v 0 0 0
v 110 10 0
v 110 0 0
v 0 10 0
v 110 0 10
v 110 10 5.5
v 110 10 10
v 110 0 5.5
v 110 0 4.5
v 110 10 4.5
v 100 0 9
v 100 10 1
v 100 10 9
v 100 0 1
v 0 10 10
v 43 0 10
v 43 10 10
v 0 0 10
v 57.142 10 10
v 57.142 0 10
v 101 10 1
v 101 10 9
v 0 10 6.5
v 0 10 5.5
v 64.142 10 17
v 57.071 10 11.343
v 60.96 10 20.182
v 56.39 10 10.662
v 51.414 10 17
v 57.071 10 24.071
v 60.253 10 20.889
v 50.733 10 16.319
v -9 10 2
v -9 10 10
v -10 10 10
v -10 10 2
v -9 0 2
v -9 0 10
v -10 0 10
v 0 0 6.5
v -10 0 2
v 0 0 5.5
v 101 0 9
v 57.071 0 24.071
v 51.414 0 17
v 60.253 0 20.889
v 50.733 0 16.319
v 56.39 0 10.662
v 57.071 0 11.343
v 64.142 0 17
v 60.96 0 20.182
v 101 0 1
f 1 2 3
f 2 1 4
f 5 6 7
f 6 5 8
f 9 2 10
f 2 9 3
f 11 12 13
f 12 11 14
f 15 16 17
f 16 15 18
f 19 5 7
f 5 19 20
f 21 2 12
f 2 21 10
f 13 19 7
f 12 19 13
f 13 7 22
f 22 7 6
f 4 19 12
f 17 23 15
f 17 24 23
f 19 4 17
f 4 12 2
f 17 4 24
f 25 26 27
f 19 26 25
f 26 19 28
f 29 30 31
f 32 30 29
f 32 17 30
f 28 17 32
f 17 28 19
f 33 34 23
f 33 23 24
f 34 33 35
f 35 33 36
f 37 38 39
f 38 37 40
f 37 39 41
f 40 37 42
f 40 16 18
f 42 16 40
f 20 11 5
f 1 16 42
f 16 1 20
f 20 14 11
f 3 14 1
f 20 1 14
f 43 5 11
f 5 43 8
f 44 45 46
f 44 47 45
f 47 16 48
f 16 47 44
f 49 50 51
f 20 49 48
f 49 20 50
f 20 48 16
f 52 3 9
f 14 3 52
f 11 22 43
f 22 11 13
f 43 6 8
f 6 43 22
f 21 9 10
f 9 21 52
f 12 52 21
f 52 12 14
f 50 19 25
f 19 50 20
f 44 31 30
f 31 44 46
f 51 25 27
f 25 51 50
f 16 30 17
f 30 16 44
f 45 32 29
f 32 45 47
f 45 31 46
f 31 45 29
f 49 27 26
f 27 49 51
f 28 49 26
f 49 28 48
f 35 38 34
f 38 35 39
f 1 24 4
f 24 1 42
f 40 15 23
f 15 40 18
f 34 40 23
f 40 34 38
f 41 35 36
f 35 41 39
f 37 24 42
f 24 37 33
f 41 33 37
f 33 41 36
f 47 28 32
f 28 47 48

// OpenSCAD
// file: dove_tail.scad
top = 10;
left = 10;
right = 10;
width = 1;
thickness = 10;
height_offset = 10;

module dove_tail(top, left, right, width, thickness){
    translate([right, 0, 0]){
        hull(){
            translate([0, 0, 0]){
                translate([left + width, 0, 0]){
                    cube(width);
                }
                translate([right * -1 + width, 0, 0]){
                    cube(width);
                }
                translate([width, 0, top]){
                    cube(width);
                }
            }
            translate([0, thickness, 0]){
                translate([left + width, width, 0]){
                    cube(width);
                }
                translate([right * -1 + width, width, 0]){
                    cube(width);
                }
                translate([width, width, top]){
                    cube(width);
                }
            }
        }
    }
}
module dove_tail_negative(top, left, right, width, thickness, height_offset){
    length_percent = 1;
    length = left + right + width + width + width;
    height = top + height_offset;
    difference(){
        translate([0, 0, 0]){
            cube([length * length_percent, thickness, height]);
        }
        translate([length - length, 0, 0]){
            dove_tail(top, left, right, width, thickness);
        }
    }
}

dove_tail(top, left, right, width, thickness);
translate([left + right + 10, 0, 0 ]){
    dove_tail_negative(top, left, right, width, thickness, height_offset);
}
// main file
use <dove_tail.scad>
//Brace settings
height = 10;
length = 100;
width = 10;

//Dove tail settings
dove_tail_top = height -1;
dove_tail_right = height/2 -.5 -1;
dove_tail_left = height/2 -.5 -1;
dove_tail_width = 1;
dove_tail_thickness = width - dove_tail_width - dove_tail_width;
dove_tail_rotation_x = 0;
dove_tail_rotation_y = 90;
dove_tail_rotation_z = 0;
dove_tail_translate_x = -height;
dove_tail_translate_y = 0;
dove_tail_translate_z = dove_tail_left + dove_tail_right + dove_tail_width + dove_tail_width + 2;

//Dove tail negative
dove_tail_negative_height_offset = 1;
dove_tail_negative_top = dove_tail_top;
dove_tail_negative_right = dove_tail_right;
dove_tail_negative_left = dove_tail_left;
dove_tail_negative_width = dove_tail_width;
dove_tail_negative_thickness = dove_tail_thickness + 2;
dove_tail_negative_rotation_x = dove_tail_rotation_x;
dove_tail_negative_rotation_y = dove_tail_rotation_y;
dove_tail_negative_rotation_z = dove_tail_rotation_z;
dove_tail_negative_translate_x = length;
dove_tail_negative_translate_y = dove_tail_translate_y;
dove_tail_negative_translate_z = height;

//Dove tail negative top
dove_tail_negative_top_rotation_x = dove_tail_rotation_x;
dove_tail_negative_top_rotation_y = 45;
dove_tail_negative_top_rotation_z = dove_tail_rotation_z;
dove_tail_negative_top_translate_x = length/2;
dove_tail_negative_top_translate_y = dove_tail_translate_y;
dove_tail_negative_top_translate_z = height * 1.7;

//Top brace settings
top_height = height + 1.35;
top_length = 10;
top_width = width;
top_x = length/2 - dove_tail_top + 1;
top_y = 0;
top_z = dove_tail_top;
top_rotate_x = 0;
top_rotate_y = 45;
top_rotate_z = 0;

translate([dove_tail_translate_x, dove_tail_translate_y, dove_tail_translate_z]){
    rotate([dove_tail_rotation_x, dove_tail_rotation_y, dove_tail_rotation_z]){
        dove_tail(dove_tail_top, dove_tail_left, dove_tail_right, dove_tail_width, dove_tail_thickness);
    }
}

translate([dove_tail_negative_translate_x, dove_tail_negative_translate_y, dove_tail_negative_translate_z]){
    rotate([dove_tail_rotation_x, dove_tail_rotation_y, dove_tail_rotation_z]){
        dove_tail_negative(dove_tail_negative_top, dove_tail_negative_left, dove_tail_negative_right, dove_tail_negative_width, dove_tail_negative_thickness, dove_tail_negative_height_offset);
    }
}

translate([dove_tail_negative_top_translate_x, dove_tail_negative_top_translate_y, dove_tail_negative_top_translate_z]){
    rotate([dove_tail_negative_top_rotation_x, dove_tail_negative_top_rotation_y, dove_tail_negative_top_rotation_z]){
        dove_tail_negative(dove_tail_negative_top, dove_tail_negative_left, dove_tail_negative_right, dove_tail_negative_width, dove_tail_negative_thickness, dove_tail_negative_height_offset);
    }
}

translate([top_x, top_y, top_z]){
    rotate([top_rotate_x, top_rotate_y, top_rotate_z]){
        cube([top_length, top_width, top_height]);
    }
}

cube([length, width, height]);
